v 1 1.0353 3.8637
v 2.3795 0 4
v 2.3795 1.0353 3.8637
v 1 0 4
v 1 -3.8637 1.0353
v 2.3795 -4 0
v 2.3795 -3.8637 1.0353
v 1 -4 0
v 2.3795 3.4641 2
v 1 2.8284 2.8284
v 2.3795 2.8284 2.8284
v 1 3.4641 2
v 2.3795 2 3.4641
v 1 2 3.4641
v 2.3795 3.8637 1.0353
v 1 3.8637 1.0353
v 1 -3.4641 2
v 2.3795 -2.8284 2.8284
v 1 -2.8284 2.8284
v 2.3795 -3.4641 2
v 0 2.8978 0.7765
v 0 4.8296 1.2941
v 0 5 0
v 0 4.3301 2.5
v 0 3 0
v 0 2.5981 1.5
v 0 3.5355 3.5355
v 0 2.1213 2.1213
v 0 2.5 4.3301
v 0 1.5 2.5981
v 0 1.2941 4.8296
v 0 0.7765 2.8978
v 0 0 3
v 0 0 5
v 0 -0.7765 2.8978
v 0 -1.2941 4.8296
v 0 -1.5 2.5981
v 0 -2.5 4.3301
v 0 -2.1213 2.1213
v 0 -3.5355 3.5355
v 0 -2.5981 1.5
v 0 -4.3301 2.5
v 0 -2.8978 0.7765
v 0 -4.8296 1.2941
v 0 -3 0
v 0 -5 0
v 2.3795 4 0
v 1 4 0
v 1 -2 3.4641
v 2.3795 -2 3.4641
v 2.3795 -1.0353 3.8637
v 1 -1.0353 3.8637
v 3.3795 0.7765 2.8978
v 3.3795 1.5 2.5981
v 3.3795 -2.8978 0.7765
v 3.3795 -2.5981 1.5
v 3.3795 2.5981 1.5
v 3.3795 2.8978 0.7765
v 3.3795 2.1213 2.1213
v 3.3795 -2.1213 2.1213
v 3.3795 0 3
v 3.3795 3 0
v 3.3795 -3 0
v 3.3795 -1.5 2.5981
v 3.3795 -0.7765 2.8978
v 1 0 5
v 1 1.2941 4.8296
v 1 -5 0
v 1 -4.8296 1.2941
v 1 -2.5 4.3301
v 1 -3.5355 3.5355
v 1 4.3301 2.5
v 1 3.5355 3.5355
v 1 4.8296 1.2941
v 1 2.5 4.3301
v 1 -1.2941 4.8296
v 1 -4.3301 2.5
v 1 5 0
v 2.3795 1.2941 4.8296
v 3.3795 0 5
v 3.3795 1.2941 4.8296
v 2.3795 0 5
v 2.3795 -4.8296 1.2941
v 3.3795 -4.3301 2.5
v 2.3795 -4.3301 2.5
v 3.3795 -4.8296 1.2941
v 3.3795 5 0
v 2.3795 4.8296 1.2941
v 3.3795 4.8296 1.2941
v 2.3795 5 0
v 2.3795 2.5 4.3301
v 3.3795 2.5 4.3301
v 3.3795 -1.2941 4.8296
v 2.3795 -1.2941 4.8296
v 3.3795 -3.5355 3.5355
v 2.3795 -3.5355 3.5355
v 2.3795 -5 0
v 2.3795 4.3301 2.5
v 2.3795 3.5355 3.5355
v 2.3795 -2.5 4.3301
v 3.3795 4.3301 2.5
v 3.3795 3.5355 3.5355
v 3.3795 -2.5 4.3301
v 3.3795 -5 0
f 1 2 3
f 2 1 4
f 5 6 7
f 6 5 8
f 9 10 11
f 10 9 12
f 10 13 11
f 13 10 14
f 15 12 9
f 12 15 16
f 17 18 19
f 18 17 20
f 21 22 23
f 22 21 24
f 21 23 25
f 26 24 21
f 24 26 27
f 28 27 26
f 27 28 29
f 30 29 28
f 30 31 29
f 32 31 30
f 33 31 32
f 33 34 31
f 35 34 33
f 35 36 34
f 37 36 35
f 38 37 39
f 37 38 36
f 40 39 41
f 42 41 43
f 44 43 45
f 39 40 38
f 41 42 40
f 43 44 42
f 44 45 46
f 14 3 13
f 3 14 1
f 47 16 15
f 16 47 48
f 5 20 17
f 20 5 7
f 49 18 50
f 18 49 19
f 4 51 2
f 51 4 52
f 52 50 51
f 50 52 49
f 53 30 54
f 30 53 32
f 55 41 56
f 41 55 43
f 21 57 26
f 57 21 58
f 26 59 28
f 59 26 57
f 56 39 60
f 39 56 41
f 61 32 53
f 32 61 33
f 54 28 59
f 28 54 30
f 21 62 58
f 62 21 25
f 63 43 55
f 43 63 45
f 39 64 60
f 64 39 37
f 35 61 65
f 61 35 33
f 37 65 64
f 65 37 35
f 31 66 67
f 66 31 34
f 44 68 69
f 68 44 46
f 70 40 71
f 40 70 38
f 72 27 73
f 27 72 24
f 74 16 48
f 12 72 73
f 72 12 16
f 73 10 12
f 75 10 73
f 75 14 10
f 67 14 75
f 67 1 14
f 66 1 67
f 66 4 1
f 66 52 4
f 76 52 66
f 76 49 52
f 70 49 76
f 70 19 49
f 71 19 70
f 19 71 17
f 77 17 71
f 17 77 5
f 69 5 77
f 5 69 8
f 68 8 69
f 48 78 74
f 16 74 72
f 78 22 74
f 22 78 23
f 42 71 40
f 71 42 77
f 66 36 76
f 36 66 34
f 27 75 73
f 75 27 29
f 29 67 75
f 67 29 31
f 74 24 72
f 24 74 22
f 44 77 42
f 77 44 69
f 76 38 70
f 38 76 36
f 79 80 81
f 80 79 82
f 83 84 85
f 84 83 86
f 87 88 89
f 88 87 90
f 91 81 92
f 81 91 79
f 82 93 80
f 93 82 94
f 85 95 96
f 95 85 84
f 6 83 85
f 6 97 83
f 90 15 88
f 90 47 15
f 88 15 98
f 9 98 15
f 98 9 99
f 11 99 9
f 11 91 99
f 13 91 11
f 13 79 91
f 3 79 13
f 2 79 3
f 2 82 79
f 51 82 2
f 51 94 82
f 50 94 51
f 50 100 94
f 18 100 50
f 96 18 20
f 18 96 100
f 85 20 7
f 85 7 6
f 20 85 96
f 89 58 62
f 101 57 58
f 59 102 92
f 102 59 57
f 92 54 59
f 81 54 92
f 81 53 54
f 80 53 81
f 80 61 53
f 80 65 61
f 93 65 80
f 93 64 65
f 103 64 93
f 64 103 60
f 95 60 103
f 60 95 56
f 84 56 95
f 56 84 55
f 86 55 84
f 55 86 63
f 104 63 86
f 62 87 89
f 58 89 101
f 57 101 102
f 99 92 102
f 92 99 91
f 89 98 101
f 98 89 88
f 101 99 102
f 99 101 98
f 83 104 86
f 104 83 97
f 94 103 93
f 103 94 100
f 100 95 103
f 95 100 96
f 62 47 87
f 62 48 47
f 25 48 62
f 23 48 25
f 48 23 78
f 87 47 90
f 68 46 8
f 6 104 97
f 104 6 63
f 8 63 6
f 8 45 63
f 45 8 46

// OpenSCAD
// file: ../build_environments.scad
// build_environments.scad: modules to build level sections
//

module pool(diameter=10.0, wall_height=2.0, step_width=3.0, connections=[])
{
    difference() {
        union() {
        difference() {
            cylinder(h=0.5,r1=diameter+step_width,r2=diameter+step_width,$fn=48);
            translate([0,0,-0.1])
                cylinder(h=0.7,r1=diameter,r2=diameter,$fn=48);
        }
        difference() {
            cylinder(h=wall_height,r1=diameter+step_width+1.0,r2=diameter+step_width+1.0,$fn=48);
            translate([0,0,-0.1])
                cylinder(h=wall_height+0.2,r1=diameter+step_width,r2=diameter+step_width,$fn=48);
        }
        }
    
        for (c = connections)
        {
            rotate([0,90,0]) {
                angle = atan2(c[1],c[0]);
                rotate([-angle,0,0]) {
                    cylinder(h=diameter+5.0,r1=c[2],r2=c[2],$fn=48);
                }
            }
        }
    }
}

module straight(length=10.0, width=2.0, dy1=0.0, dy2=0.0, dz=0.0)
{
    dims = [0, 0, 0, 0, 0, (dz/length)];
    matrix = [
        [ 1, dims[0], dims[1], 0 ],
        [ dims[2], 1, dims[4], 0 ],
        [ dims[5], dims[3], 1, 0 ],
        [ 0, 0, 0, 1 ]
    ];
    multmatrix(matrix)
    difference() {
        translate([dy1,0,0])
        union() {
            rotate([0,90,0]) {
                difference() {
                    cylinder(h=(length-dy1-dy2),r1=width+1.0,r2=width+1.0,$fn=24);
                    translate([0,0,-0.1])
                        cylinder(h=(length-dy1-dy2+0.2),r1=width,r2=width,$fn=24);
                }
                difference() {
                    cylinder(h=1.0,r1=width+2.0,r2=width+2.0,$fn=24);
                    translate([0,0,-0.1])
                        cylinder(h=1.2,r1=width,r2=width,$fn=24);
                }
                translate([0,0,(length-dy1-dy2)-1.0]) {
                    difference() {
                        cylinder(h=1.0,r1=width+2.0,r2=width+2.0,$fn=24);
                        translate([0,0,-0.1])
                            cylinder(h=1.2,r1=width,r2=width,$fn=24);
                    }
                }
            }
        }
        translate([0,0,-(2*width+4.0)/2])
            cube([3*length,3*length,2*width+4.0],center=true);
    }
}

module curve(p0=[0,0], center=[0,0], dir=1, angle=0.0, width=2.0)
{
    radius = sqrt((p0[0]-center[0])*(p0[0]-center[0]) + (p0[1]-center[1])*(p0[1]-center[1]));
    if (dir == 0) {
        difference() {
            rotate([0,0,-90])
            difference() {
                rotate_extrude(angle = angle, convexity = 10, $fn=32)
                    translate([radius, 0, 0])
                        circle(r = width+1.0,$fn=24);
                rotate([0,0,-1.0])
                    rotate_extrude(angle = angle+2.0, convexity = 10, $fn=32)
                        translate([radius, 0, 0])
                            circle(r = width,$fn=24);
            }
            translate([0,0,-(2*width+4.0)/2])
                cube([5*radius,5*radius,2*width+4.0],center=true);
        }
    }
    else {
        difference() {
            rotate([0,0,90])
            difference() {
                rotate_extrude(angle = -angle, convexity = 10, $fn=32)
                    translate([radius, 0, 0])
                        circle(r = width+1.0,$fn=24);
                rotate([0,0,1.0])
                    rotate_extrude(angle = -angle-2.0, convexity = 10, $fn=32)
                        translate([radius, 0, 0])
                            circle(r = width,$fn=24);
            }
            translate([0,0,-(2*width+4.0)/2])
                cube([5*radius,5*radius,2*width+4.0],center=true);
        }
    }

}

// test pool
//pool(diameter=12.0000, wall_height=3.0000, step_width=3.0000, connections=[[0.0000,-26.0000,2.0000], [23.6074,0.0000,2.0000]]);

// test straight, slope
//straight(length=26.0000, width=2.0000, dy1=11.8322, dy2=6.7082, dz=0.0000);
//straight(length=29.1549, width=12.0000, dy1=0.0000, dy2=0.0000, dz=-15.0000);

// test curve
//curve(p0=[23.6074, 0.0000], center=[23.6074, 5.0000], dir=0, angle=60.1011, width=2.0000);
//curve(p0=[33.6426, 12.4219], center=[37.9771, 9.9295], dir=1, angle=120.4627, width=2.0000);
// main file
use <../build_environments.scad>;
straight(length=3.3795, width=3.0000, dy1=0.0000, dy2=0.0000, dz=0.0000);
